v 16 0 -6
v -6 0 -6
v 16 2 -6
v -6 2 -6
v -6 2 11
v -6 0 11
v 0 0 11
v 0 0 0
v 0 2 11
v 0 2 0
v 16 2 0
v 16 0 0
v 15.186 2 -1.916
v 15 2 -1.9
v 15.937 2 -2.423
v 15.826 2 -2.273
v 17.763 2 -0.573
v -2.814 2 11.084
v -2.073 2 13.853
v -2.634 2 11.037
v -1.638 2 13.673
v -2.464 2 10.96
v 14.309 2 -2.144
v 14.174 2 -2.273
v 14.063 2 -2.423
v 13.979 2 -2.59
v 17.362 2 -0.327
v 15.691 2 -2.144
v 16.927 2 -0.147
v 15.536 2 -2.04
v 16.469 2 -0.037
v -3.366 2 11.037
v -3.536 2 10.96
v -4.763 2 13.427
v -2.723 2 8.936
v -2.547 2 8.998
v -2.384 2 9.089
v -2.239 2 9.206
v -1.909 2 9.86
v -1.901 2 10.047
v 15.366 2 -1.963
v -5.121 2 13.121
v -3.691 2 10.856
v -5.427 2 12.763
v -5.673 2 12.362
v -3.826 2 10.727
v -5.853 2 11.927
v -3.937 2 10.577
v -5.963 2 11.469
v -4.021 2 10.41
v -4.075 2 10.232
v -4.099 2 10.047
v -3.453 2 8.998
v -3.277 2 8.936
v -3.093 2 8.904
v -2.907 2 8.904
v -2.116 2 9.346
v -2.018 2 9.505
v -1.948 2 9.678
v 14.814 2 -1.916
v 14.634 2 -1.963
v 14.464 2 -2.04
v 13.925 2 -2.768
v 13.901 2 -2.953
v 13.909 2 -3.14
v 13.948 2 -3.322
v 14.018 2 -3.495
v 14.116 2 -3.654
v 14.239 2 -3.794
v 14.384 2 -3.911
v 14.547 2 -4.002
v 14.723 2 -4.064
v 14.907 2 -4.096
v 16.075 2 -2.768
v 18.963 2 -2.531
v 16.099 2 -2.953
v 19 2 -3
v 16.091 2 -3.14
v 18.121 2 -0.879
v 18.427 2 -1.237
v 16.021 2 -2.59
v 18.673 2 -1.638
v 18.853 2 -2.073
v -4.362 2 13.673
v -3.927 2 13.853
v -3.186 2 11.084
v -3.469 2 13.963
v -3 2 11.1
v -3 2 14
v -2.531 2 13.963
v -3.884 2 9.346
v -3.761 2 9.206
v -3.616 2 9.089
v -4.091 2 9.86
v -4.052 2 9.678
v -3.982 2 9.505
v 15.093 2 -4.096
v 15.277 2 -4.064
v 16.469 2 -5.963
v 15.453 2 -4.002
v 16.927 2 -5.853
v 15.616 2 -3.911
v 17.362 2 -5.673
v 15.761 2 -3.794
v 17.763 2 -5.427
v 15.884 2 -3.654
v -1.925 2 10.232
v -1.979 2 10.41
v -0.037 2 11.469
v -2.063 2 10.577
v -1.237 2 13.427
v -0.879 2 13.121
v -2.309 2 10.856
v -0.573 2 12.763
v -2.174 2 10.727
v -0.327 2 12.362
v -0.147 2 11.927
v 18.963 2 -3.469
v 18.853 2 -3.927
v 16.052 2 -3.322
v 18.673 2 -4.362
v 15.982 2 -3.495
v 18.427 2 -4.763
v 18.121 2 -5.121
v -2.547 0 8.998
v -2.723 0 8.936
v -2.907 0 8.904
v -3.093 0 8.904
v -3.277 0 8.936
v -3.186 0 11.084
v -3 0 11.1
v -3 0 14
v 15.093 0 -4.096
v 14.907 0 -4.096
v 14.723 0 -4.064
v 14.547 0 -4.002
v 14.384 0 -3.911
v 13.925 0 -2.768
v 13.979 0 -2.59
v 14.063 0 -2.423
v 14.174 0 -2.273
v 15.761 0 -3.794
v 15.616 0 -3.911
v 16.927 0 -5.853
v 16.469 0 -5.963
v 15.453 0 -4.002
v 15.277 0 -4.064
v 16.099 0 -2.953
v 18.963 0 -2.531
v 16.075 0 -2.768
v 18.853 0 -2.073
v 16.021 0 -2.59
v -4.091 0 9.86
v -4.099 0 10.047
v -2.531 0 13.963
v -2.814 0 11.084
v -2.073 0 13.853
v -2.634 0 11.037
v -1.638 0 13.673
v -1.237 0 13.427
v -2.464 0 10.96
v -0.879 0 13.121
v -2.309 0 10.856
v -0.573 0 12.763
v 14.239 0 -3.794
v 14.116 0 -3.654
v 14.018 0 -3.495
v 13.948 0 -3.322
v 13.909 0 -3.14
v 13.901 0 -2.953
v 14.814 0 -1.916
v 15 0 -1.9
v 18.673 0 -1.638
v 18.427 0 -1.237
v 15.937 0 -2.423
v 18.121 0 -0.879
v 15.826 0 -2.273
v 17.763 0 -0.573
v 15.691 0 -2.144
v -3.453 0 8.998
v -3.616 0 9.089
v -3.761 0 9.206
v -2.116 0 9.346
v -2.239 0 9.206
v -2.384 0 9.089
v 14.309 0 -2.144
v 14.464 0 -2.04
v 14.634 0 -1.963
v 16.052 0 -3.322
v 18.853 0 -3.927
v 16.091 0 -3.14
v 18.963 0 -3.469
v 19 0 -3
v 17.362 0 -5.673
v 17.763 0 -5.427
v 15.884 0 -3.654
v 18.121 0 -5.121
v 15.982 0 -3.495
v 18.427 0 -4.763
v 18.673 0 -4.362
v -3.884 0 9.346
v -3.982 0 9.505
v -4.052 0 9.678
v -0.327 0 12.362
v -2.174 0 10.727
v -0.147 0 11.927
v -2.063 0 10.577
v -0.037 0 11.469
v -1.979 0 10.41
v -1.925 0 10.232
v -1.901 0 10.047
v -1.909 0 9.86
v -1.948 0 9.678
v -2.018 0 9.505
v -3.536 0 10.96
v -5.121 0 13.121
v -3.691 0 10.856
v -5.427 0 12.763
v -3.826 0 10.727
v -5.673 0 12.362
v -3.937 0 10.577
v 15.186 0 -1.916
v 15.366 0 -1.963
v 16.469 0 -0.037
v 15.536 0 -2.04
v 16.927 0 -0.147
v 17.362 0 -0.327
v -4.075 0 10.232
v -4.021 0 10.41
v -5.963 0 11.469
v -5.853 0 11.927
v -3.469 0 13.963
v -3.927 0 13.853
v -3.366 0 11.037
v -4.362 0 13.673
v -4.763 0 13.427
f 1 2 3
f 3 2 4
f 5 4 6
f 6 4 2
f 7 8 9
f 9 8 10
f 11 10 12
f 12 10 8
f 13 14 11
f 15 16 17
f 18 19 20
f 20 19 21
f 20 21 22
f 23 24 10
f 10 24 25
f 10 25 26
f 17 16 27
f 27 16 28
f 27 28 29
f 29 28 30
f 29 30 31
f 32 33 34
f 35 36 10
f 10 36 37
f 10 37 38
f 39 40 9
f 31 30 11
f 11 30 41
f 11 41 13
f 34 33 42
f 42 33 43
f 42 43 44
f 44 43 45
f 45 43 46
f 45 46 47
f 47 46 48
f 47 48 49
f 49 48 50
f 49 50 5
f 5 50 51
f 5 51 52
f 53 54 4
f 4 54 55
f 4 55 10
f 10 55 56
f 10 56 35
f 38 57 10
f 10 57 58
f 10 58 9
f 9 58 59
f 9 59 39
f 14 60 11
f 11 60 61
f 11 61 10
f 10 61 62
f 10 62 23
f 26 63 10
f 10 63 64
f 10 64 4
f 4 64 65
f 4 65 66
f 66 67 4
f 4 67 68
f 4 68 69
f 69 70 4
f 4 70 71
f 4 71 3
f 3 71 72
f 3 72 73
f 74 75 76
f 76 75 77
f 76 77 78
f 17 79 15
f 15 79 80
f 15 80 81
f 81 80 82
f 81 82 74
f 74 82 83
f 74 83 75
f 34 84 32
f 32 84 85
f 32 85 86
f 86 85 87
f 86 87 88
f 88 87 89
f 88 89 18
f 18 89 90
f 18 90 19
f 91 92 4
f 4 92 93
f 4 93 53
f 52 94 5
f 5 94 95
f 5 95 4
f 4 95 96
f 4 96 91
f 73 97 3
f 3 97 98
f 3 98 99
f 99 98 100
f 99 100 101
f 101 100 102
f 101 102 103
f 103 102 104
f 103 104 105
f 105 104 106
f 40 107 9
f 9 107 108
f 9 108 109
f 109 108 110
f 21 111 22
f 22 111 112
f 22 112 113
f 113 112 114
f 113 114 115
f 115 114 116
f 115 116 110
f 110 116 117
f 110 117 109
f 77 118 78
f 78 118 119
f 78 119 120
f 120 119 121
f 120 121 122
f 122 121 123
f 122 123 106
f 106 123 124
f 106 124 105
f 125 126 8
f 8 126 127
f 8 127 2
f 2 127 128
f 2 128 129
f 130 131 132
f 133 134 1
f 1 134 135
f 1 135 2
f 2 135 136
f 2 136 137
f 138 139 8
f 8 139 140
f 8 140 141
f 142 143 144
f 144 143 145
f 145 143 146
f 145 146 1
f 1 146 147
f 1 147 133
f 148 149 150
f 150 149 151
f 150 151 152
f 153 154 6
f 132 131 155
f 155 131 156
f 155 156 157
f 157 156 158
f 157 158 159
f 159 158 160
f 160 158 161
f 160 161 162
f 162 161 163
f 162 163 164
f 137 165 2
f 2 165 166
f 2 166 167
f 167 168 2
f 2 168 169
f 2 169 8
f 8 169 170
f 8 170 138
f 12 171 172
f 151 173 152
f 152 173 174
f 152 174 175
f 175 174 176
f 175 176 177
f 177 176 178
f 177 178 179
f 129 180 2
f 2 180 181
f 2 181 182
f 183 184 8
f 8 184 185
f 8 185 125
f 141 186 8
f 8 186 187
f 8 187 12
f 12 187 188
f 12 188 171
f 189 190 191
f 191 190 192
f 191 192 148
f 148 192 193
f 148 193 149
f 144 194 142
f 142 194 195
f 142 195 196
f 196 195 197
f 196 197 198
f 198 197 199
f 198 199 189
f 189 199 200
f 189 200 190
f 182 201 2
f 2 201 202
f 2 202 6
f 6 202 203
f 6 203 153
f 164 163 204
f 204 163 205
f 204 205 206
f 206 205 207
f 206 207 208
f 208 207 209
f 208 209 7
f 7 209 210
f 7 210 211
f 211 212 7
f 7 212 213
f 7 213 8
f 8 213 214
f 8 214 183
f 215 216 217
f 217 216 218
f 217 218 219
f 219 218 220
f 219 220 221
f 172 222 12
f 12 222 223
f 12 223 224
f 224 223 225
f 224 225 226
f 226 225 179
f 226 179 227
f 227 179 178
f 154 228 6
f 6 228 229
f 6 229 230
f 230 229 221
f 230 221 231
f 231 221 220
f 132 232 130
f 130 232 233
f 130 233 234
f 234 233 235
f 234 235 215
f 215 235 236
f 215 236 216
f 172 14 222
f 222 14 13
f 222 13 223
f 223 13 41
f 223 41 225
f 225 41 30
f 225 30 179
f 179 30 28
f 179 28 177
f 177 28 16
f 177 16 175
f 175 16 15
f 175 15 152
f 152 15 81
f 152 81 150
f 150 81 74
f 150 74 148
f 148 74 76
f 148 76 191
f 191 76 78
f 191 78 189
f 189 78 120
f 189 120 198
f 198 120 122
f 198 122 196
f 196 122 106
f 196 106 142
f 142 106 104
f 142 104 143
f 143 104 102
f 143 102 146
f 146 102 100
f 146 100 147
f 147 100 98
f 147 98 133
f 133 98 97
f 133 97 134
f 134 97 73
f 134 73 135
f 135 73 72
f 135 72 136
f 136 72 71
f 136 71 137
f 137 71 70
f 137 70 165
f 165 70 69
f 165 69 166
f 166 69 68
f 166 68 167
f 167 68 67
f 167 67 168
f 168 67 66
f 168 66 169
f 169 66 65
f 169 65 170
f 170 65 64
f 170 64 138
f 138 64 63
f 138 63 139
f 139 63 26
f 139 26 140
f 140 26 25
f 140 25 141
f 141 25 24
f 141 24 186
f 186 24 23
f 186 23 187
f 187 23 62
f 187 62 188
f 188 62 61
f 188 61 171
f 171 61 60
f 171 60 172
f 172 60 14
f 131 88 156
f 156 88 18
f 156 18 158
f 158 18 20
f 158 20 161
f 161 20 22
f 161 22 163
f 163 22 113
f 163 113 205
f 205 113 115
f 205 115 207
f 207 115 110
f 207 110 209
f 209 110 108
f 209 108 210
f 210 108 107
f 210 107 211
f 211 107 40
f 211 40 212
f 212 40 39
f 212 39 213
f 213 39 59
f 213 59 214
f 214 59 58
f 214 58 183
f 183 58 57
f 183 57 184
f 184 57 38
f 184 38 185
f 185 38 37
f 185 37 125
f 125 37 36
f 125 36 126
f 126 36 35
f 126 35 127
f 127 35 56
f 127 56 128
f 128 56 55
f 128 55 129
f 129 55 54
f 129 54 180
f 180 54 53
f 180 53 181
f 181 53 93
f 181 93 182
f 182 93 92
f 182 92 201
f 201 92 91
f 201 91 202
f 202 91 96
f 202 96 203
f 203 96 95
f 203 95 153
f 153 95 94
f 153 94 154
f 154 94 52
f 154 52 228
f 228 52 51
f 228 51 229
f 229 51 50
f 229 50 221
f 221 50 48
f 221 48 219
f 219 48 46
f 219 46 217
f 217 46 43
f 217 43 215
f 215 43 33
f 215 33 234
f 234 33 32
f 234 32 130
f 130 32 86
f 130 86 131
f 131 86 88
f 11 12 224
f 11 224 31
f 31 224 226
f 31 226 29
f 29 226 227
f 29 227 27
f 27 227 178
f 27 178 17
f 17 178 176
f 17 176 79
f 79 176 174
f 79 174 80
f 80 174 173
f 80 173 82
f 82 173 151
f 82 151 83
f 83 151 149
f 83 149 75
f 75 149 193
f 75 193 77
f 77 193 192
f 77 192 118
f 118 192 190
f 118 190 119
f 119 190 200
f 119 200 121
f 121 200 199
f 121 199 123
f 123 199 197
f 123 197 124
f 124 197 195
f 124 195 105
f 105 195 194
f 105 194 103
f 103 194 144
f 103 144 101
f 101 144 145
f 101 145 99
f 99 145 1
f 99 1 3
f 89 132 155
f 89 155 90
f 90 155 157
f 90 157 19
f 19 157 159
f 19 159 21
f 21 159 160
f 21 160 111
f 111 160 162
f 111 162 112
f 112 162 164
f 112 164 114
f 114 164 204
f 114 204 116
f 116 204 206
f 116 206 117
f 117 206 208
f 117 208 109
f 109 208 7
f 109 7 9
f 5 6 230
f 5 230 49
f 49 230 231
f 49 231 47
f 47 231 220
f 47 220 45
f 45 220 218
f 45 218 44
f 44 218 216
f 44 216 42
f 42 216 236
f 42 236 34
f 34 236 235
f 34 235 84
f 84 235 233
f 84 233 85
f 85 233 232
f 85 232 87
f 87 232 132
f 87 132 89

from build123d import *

# Parameters (mm, degrees)
BOSS_EXTRUDE1_DEPTH = 2
SKETCH2_R           = 1.1
CUT_EXTRUDE1_DEPTH  = 2
FILLET1_R           = 3


with BuildPart() as part:
    # Sketch1 → Boss-Extrude1 (new body)
    with BuildSketch(Plane(origin=(0, 0, 0), x_dir=(1, 0, 0), z_dir=(0, 1, 0))):
        Polygon((-6, 6), (-6, -14), (0, -14), (0, 0), (19, 0), (19, 6), align=None)
    extrude(amount=BOSS_EXTRUDE1_DEPTH)

    # Sketch2 → Cut-Extrude1 (cut)
    with BuildSketch(Plane(origin=(0, 2, 0), x_dir=(1, 0, 0), z_dir=(0, 1, 0))):
        with Locations(Location((-3, -10, 0), (0, 0, 270))):
            Circle(SKETCH2_R)
        with Locations(Location((15, 3, 0), (0, 0, 270))):
            Circle(SKETCH2_R)
    extrude(amount=-CUT_EXTRUDE1_DEPTH, mode=Mode.SUBTRACT)

    # Fillet1
    fillet1_edges = [part.edges().sort_by_distance(p)[0] for p in [
        (19, 1, -6),
        (19, 1, 0),
        (-6, 1, 14),
        (0, 1, 14),
    ]]
    fillet(fillet1_edges, radius=FILLET1_R - 0.0001)  # a hair under: the kernel refuses the full size


solid = part.part
